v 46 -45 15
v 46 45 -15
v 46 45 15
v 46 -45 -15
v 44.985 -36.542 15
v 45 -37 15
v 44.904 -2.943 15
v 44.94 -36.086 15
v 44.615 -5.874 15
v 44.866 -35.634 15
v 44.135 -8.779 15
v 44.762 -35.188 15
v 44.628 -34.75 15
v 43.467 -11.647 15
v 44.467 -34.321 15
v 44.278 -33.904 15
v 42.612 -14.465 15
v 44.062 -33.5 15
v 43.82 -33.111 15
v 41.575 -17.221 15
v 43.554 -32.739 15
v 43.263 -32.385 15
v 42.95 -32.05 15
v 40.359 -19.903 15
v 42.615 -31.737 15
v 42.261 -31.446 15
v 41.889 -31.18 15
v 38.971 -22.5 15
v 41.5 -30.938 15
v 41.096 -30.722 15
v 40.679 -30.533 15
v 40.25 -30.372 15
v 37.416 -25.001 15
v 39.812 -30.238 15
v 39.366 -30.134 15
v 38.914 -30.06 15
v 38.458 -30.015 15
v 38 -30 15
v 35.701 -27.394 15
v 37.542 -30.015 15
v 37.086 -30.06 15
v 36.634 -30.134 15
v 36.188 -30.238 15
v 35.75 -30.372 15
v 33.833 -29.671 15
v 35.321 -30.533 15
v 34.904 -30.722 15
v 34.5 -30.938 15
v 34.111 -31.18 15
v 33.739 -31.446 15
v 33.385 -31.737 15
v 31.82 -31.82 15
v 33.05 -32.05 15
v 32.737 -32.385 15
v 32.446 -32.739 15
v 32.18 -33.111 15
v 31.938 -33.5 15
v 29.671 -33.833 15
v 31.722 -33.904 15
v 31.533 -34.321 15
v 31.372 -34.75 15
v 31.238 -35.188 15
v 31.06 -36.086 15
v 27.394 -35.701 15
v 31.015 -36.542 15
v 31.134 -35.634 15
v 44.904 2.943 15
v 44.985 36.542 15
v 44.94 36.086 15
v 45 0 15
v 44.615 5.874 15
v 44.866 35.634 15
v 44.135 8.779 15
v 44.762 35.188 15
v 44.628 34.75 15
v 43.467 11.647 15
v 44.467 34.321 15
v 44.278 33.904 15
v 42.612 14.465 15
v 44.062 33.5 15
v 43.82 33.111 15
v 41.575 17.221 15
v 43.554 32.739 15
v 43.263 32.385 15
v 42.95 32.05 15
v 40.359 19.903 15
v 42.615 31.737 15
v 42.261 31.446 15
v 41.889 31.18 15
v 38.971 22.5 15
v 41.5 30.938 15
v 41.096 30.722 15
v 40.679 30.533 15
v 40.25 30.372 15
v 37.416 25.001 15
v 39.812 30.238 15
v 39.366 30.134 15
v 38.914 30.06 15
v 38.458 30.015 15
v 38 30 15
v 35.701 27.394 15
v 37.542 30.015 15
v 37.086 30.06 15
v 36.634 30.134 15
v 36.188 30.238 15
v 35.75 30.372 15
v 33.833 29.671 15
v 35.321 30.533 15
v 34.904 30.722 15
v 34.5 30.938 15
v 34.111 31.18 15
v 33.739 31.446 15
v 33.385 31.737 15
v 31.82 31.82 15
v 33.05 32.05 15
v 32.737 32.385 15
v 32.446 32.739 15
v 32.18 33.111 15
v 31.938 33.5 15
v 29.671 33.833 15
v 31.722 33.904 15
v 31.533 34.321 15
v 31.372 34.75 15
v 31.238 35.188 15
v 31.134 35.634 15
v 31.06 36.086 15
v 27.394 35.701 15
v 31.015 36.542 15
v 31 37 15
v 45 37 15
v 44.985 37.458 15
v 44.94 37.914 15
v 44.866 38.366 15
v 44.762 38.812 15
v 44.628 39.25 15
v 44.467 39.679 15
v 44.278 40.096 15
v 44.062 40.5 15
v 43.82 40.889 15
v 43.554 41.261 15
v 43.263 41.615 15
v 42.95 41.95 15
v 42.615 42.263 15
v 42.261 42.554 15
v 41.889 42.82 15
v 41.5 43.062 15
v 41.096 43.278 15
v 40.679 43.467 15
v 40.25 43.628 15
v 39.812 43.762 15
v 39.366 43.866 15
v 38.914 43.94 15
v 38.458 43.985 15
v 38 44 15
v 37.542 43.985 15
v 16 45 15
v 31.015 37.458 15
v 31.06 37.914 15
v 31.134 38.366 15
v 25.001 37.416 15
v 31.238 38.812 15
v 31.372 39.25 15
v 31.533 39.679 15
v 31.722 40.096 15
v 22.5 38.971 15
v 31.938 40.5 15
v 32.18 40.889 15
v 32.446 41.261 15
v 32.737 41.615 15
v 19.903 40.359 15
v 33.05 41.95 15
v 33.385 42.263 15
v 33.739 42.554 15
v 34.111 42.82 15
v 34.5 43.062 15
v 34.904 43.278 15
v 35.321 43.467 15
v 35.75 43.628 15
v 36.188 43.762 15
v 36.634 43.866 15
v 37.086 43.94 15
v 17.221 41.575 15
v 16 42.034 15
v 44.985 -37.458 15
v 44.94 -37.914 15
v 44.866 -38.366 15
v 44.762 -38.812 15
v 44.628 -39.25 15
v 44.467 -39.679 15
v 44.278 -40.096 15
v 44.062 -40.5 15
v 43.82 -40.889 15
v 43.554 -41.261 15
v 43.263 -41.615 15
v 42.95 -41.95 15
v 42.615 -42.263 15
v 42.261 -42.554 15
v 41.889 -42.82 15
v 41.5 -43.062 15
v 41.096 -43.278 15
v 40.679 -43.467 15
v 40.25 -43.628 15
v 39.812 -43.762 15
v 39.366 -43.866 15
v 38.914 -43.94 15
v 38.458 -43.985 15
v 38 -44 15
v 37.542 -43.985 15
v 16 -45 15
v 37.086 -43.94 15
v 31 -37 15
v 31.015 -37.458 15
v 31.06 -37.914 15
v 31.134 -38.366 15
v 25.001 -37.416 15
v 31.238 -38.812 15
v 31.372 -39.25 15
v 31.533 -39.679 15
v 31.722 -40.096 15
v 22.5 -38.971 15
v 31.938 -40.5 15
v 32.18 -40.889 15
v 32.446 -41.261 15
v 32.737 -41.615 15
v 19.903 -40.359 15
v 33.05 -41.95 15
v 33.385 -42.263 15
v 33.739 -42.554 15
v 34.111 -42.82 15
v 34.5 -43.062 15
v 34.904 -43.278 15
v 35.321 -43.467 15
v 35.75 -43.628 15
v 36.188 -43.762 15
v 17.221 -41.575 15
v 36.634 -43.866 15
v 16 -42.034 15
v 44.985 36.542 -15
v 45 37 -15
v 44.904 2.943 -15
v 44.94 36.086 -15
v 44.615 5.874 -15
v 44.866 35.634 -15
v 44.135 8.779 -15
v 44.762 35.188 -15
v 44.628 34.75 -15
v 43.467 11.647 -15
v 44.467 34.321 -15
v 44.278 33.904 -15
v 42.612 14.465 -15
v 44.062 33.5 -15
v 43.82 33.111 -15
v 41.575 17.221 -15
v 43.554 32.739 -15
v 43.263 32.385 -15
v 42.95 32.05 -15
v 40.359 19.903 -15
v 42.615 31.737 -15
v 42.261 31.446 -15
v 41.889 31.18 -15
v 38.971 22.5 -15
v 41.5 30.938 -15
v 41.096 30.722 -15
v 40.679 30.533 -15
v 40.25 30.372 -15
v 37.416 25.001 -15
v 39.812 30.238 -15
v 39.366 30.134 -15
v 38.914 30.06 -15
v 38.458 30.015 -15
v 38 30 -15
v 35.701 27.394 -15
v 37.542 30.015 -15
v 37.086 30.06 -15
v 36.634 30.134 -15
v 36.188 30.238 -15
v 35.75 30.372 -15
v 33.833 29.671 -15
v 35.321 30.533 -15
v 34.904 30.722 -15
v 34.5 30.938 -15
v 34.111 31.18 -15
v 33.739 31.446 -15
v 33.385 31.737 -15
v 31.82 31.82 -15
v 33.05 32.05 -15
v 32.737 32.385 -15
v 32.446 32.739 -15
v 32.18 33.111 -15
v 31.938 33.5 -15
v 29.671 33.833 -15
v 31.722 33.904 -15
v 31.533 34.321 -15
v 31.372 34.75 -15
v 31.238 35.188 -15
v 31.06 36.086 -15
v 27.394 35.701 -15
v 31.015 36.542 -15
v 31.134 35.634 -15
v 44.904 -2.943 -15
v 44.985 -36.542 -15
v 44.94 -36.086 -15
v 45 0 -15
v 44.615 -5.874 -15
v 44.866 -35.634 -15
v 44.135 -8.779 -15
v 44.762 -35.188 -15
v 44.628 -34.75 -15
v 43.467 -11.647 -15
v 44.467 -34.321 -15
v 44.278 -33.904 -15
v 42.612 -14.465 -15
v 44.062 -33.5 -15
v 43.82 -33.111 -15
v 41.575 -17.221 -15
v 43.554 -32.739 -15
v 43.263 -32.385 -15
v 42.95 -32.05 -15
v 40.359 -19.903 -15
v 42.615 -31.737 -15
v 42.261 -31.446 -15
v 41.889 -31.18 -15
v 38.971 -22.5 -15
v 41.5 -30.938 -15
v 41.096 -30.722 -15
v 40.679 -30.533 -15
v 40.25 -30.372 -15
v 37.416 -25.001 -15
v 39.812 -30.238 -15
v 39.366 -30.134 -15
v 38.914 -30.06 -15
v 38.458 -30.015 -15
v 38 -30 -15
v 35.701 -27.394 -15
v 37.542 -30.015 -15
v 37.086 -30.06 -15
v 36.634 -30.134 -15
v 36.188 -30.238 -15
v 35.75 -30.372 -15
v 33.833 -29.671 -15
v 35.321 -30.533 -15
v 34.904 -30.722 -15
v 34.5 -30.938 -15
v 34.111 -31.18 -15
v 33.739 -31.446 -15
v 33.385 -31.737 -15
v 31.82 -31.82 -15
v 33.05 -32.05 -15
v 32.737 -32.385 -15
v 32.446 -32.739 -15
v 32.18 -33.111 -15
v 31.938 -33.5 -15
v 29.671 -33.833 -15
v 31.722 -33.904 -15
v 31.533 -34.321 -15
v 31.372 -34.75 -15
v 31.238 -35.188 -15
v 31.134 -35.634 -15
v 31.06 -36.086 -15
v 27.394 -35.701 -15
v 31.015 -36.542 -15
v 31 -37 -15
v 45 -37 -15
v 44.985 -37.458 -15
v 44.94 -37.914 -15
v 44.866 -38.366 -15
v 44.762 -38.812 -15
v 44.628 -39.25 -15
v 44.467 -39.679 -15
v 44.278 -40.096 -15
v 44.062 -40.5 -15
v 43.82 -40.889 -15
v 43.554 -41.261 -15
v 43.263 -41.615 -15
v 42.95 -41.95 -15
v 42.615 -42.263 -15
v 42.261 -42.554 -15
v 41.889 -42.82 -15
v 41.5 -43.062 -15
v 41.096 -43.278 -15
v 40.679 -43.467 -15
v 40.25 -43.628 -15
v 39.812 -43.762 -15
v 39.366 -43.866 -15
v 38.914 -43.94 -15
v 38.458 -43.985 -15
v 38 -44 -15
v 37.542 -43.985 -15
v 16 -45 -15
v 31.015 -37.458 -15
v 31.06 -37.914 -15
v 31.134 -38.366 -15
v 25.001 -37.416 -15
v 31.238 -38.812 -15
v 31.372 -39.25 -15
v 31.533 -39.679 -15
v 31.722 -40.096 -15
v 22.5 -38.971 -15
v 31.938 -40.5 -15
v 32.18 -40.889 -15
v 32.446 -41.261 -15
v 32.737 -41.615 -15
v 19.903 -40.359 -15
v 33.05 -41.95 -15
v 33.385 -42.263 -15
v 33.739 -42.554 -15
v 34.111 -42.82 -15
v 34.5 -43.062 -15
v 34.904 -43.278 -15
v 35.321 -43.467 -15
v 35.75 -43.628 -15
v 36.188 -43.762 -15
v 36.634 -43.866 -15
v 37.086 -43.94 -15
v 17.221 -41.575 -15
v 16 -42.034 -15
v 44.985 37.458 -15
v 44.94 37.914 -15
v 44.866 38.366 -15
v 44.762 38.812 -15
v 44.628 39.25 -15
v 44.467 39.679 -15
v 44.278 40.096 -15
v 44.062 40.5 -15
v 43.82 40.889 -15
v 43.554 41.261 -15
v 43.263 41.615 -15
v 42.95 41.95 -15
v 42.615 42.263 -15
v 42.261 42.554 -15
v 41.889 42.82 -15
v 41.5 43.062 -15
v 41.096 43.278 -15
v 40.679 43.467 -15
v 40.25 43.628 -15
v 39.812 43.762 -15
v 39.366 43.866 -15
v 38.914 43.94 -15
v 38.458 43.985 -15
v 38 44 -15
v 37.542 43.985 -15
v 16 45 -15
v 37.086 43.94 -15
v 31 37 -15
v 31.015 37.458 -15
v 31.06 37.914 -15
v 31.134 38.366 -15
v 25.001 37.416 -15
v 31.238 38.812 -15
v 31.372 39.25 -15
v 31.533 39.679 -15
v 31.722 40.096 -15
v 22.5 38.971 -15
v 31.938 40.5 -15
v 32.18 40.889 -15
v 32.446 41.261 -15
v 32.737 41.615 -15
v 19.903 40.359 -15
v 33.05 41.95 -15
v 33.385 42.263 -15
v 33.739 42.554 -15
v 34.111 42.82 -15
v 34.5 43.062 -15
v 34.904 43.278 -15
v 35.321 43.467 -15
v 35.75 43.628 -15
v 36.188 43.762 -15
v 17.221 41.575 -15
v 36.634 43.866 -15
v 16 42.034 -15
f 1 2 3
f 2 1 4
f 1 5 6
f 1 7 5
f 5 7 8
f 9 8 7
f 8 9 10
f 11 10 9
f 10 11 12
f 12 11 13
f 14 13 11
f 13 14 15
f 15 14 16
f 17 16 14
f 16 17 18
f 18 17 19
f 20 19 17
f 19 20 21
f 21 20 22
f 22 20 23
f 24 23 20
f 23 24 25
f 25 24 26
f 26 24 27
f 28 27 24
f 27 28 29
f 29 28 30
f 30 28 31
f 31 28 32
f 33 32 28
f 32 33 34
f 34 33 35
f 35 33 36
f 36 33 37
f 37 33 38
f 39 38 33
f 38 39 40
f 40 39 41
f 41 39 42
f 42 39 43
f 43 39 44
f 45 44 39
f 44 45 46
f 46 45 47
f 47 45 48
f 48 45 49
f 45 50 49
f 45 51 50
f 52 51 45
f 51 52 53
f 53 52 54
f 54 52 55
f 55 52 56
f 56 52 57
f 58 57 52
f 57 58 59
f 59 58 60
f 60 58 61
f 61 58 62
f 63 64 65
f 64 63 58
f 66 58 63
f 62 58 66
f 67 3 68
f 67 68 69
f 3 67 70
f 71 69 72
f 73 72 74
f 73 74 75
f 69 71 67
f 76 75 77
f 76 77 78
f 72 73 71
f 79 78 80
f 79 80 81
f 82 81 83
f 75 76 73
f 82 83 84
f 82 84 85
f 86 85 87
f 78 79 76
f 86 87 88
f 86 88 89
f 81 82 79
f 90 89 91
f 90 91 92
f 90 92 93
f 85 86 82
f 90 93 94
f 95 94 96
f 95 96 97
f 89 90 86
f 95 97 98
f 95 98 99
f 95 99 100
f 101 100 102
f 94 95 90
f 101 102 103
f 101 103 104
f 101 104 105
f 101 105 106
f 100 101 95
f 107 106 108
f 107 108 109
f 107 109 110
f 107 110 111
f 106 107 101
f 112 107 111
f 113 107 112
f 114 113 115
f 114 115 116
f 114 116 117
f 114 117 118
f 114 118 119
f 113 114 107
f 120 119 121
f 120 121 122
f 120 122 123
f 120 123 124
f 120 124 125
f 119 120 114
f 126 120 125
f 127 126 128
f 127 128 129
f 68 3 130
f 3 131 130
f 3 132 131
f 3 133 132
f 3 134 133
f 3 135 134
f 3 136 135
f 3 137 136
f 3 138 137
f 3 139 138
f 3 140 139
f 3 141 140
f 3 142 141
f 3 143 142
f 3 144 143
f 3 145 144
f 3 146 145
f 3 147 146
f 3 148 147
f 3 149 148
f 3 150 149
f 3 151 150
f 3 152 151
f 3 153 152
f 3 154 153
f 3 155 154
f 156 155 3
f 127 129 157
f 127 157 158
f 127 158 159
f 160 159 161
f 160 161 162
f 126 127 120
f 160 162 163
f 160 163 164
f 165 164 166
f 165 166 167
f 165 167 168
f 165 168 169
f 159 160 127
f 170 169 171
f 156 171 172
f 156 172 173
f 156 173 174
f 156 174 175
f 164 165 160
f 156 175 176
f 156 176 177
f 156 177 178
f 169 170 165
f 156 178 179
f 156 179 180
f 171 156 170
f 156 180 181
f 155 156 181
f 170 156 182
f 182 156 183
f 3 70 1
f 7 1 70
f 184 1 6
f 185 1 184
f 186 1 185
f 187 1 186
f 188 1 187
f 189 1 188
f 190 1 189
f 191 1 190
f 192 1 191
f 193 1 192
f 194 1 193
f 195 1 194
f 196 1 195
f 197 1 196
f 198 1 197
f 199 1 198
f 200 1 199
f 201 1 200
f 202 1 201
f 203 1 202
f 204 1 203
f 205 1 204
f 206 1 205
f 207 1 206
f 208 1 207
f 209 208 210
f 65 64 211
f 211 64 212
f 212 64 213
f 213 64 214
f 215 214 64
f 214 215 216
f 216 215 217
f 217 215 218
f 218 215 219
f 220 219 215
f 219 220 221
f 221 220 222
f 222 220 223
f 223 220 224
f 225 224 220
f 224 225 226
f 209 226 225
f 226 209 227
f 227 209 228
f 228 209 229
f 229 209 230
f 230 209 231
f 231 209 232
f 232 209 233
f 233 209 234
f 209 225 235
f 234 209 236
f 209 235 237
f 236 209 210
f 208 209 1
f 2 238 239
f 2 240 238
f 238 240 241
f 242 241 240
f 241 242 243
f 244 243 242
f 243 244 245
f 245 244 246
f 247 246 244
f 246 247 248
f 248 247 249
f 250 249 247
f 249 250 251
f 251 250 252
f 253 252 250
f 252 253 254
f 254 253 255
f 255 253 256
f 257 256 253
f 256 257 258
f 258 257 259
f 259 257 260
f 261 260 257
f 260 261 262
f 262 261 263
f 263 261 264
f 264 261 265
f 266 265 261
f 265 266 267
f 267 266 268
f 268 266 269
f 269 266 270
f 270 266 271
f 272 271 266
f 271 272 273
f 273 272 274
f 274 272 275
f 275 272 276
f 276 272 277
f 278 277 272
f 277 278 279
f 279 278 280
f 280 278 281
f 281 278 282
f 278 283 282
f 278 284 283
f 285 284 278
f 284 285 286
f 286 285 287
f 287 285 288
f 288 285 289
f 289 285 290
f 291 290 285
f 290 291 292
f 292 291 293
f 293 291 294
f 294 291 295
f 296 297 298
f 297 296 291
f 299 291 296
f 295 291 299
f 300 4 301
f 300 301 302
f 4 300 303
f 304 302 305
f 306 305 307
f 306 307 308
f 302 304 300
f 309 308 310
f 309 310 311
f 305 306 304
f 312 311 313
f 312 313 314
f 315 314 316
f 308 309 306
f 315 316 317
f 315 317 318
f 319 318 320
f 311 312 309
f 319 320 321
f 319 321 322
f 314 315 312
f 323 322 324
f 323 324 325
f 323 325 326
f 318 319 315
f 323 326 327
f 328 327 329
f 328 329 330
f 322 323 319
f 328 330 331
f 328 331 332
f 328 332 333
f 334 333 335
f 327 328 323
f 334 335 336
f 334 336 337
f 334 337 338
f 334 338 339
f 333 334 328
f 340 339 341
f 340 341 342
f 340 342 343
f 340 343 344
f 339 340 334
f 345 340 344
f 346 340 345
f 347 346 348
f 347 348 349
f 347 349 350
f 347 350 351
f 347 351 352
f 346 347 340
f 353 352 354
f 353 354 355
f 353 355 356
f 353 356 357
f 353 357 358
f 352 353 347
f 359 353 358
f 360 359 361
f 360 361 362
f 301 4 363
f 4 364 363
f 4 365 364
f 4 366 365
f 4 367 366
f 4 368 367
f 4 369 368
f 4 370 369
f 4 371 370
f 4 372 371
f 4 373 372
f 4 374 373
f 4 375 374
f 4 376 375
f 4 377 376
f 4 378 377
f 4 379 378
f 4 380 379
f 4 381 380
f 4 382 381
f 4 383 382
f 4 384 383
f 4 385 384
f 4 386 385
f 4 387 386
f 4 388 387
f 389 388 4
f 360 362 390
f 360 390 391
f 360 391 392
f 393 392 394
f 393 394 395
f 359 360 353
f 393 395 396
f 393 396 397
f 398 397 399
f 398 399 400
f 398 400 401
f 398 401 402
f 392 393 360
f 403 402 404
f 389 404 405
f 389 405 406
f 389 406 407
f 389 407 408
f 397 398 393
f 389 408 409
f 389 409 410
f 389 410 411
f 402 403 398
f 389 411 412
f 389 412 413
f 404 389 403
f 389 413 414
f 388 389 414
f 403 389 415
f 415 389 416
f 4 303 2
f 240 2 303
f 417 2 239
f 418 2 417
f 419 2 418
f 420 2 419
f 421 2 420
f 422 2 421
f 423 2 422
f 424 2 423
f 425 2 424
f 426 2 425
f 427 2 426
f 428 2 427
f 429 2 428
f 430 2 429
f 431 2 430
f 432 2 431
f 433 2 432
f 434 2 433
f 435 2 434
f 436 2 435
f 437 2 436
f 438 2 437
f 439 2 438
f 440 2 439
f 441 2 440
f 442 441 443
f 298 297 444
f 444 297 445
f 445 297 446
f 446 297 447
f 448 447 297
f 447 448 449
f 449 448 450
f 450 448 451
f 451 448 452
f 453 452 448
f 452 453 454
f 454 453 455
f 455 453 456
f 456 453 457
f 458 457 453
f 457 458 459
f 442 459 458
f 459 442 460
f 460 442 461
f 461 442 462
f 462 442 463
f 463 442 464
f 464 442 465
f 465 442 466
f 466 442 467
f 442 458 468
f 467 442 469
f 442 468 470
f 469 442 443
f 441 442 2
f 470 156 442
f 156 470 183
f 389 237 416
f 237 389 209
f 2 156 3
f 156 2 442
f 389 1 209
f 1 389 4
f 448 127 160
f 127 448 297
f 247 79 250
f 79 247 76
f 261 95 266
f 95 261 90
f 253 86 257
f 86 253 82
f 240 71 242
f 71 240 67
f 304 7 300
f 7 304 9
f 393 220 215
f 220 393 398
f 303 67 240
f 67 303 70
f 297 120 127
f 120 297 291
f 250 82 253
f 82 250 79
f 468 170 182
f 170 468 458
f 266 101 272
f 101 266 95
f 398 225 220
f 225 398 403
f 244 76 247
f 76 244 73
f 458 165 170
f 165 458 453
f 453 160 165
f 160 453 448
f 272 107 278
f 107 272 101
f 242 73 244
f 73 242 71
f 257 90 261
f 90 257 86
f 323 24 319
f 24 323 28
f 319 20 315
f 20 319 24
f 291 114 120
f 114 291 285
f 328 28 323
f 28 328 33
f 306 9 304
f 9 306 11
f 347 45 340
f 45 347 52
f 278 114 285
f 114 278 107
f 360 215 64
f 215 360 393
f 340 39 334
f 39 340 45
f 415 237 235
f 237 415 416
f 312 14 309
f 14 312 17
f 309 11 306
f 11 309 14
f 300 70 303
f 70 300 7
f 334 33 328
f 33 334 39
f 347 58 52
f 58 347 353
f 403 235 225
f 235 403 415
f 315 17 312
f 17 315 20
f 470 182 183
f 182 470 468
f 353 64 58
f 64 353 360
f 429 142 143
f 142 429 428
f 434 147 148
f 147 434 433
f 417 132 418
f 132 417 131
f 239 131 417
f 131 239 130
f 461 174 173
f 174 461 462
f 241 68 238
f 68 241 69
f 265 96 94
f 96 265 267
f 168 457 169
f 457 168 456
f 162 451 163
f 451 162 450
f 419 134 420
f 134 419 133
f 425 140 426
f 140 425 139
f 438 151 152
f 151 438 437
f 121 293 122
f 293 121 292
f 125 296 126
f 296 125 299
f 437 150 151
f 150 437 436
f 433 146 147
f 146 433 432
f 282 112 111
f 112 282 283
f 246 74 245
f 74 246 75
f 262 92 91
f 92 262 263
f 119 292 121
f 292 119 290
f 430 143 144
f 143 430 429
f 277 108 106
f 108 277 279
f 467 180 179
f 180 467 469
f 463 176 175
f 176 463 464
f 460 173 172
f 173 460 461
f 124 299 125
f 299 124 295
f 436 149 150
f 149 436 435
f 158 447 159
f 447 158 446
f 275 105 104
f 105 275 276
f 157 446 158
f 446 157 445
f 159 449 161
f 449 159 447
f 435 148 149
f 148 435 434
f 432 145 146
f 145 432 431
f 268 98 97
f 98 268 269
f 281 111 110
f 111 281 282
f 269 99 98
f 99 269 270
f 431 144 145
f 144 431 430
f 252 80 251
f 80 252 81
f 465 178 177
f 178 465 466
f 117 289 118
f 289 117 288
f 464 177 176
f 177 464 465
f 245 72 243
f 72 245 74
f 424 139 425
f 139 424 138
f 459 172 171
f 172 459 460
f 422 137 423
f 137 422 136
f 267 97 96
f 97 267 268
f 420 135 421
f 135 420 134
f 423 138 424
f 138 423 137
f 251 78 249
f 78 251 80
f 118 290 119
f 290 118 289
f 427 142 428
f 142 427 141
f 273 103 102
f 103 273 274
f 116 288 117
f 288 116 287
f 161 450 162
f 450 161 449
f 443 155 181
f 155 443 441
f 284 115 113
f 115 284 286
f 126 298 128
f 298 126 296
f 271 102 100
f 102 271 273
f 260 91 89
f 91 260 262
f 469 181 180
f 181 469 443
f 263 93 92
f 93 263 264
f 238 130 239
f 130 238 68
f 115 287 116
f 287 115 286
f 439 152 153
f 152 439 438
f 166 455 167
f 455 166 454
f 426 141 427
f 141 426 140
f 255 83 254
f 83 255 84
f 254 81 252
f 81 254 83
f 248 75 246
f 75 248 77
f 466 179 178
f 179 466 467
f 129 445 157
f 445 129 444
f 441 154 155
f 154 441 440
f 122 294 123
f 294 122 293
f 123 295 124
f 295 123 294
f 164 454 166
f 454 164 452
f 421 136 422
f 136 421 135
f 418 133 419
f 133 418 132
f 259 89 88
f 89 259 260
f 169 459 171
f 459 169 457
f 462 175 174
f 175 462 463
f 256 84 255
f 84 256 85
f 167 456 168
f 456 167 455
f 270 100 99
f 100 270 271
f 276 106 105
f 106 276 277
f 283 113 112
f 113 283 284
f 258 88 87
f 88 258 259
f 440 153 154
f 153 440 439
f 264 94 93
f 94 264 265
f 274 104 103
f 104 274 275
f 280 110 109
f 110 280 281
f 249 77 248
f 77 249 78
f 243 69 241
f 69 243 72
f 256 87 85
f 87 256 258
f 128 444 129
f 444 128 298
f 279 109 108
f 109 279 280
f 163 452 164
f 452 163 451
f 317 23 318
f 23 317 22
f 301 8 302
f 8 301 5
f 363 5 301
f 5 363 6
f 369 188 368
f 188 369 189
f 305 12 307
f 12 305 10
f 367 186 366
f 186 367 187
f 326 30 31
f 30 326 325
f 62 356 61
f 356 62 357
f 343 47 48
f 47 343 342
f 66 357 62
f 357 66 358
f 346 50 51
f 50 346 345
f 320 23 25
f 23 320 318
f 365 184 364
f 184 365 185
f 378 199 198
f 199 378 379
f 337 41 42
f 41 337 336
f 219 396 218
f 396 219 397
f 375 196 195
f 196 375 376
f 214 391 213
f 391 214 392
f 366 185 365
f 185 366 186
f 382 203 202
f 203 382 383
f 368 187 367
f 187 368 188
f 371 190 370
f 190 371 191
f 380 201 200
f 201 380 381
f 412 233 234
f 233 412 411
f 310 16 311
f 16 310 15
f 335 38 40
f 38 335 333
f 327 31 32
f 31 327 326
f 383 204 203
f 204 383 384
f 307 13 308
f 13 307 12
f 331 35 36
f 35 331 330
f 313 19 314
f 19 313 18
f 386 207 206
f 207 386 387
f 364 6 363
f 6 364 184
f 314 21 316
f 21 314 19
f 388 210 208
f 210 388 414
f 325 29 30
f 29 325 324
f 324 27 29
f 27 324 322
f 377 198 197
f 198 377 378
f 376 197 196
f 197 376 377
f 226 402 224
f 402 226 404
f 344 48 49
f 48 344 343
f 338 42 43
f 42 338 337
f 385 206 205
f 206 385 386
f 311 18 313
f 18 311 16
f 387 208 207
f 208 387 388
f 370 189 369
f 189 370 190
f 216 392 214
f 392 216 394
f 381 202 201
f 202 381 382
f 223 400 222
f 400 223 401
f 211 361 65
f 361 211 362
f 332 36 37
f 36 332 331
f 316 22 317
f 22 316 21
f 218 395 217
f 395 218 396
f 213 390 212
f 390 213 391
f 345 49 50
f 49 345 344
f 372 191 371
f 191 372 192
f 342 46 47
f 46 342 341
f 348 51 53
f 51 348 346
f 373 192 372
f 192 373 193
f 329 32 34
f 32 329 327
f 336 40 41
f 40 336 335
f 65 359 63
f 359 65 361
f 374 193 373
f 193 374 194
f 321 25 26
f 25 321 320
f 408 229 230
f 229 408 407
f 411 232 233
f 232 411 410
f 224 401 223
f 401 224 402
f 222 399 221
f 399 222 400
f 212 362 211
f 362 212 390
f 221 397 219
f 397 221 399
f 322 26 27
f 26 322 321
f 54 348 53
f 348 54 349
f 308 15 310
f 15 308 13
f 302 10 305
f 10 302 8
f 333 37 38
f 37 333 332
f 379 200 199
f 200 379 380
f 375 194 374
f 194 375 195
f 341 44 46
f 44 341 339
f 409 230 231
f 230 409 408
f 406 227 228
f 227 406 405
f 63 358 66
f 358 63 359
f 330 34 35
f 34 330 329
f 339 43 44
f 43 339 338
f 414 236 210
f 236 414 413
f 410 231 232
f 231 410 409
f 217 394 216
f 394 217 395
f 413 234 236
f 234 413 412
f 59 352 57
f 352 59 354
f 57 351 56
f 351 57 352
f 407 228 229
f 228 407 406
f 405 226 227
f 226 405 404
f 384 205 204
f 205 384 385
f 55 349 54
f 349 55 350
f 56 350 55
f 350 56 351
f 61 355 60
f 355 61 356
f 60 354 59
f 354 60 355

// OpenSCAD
$fn=96;

difference() {
    translate([31,0,0]) cube([30,90,30],center=true);

    cylinder(r=45,h=32,center=true);

    translate([38,37,0]) cylinder(r=7,h=32,center=true);
    translate([38,-37,0]) cylinder(r=7,h=32,center=true);
}
